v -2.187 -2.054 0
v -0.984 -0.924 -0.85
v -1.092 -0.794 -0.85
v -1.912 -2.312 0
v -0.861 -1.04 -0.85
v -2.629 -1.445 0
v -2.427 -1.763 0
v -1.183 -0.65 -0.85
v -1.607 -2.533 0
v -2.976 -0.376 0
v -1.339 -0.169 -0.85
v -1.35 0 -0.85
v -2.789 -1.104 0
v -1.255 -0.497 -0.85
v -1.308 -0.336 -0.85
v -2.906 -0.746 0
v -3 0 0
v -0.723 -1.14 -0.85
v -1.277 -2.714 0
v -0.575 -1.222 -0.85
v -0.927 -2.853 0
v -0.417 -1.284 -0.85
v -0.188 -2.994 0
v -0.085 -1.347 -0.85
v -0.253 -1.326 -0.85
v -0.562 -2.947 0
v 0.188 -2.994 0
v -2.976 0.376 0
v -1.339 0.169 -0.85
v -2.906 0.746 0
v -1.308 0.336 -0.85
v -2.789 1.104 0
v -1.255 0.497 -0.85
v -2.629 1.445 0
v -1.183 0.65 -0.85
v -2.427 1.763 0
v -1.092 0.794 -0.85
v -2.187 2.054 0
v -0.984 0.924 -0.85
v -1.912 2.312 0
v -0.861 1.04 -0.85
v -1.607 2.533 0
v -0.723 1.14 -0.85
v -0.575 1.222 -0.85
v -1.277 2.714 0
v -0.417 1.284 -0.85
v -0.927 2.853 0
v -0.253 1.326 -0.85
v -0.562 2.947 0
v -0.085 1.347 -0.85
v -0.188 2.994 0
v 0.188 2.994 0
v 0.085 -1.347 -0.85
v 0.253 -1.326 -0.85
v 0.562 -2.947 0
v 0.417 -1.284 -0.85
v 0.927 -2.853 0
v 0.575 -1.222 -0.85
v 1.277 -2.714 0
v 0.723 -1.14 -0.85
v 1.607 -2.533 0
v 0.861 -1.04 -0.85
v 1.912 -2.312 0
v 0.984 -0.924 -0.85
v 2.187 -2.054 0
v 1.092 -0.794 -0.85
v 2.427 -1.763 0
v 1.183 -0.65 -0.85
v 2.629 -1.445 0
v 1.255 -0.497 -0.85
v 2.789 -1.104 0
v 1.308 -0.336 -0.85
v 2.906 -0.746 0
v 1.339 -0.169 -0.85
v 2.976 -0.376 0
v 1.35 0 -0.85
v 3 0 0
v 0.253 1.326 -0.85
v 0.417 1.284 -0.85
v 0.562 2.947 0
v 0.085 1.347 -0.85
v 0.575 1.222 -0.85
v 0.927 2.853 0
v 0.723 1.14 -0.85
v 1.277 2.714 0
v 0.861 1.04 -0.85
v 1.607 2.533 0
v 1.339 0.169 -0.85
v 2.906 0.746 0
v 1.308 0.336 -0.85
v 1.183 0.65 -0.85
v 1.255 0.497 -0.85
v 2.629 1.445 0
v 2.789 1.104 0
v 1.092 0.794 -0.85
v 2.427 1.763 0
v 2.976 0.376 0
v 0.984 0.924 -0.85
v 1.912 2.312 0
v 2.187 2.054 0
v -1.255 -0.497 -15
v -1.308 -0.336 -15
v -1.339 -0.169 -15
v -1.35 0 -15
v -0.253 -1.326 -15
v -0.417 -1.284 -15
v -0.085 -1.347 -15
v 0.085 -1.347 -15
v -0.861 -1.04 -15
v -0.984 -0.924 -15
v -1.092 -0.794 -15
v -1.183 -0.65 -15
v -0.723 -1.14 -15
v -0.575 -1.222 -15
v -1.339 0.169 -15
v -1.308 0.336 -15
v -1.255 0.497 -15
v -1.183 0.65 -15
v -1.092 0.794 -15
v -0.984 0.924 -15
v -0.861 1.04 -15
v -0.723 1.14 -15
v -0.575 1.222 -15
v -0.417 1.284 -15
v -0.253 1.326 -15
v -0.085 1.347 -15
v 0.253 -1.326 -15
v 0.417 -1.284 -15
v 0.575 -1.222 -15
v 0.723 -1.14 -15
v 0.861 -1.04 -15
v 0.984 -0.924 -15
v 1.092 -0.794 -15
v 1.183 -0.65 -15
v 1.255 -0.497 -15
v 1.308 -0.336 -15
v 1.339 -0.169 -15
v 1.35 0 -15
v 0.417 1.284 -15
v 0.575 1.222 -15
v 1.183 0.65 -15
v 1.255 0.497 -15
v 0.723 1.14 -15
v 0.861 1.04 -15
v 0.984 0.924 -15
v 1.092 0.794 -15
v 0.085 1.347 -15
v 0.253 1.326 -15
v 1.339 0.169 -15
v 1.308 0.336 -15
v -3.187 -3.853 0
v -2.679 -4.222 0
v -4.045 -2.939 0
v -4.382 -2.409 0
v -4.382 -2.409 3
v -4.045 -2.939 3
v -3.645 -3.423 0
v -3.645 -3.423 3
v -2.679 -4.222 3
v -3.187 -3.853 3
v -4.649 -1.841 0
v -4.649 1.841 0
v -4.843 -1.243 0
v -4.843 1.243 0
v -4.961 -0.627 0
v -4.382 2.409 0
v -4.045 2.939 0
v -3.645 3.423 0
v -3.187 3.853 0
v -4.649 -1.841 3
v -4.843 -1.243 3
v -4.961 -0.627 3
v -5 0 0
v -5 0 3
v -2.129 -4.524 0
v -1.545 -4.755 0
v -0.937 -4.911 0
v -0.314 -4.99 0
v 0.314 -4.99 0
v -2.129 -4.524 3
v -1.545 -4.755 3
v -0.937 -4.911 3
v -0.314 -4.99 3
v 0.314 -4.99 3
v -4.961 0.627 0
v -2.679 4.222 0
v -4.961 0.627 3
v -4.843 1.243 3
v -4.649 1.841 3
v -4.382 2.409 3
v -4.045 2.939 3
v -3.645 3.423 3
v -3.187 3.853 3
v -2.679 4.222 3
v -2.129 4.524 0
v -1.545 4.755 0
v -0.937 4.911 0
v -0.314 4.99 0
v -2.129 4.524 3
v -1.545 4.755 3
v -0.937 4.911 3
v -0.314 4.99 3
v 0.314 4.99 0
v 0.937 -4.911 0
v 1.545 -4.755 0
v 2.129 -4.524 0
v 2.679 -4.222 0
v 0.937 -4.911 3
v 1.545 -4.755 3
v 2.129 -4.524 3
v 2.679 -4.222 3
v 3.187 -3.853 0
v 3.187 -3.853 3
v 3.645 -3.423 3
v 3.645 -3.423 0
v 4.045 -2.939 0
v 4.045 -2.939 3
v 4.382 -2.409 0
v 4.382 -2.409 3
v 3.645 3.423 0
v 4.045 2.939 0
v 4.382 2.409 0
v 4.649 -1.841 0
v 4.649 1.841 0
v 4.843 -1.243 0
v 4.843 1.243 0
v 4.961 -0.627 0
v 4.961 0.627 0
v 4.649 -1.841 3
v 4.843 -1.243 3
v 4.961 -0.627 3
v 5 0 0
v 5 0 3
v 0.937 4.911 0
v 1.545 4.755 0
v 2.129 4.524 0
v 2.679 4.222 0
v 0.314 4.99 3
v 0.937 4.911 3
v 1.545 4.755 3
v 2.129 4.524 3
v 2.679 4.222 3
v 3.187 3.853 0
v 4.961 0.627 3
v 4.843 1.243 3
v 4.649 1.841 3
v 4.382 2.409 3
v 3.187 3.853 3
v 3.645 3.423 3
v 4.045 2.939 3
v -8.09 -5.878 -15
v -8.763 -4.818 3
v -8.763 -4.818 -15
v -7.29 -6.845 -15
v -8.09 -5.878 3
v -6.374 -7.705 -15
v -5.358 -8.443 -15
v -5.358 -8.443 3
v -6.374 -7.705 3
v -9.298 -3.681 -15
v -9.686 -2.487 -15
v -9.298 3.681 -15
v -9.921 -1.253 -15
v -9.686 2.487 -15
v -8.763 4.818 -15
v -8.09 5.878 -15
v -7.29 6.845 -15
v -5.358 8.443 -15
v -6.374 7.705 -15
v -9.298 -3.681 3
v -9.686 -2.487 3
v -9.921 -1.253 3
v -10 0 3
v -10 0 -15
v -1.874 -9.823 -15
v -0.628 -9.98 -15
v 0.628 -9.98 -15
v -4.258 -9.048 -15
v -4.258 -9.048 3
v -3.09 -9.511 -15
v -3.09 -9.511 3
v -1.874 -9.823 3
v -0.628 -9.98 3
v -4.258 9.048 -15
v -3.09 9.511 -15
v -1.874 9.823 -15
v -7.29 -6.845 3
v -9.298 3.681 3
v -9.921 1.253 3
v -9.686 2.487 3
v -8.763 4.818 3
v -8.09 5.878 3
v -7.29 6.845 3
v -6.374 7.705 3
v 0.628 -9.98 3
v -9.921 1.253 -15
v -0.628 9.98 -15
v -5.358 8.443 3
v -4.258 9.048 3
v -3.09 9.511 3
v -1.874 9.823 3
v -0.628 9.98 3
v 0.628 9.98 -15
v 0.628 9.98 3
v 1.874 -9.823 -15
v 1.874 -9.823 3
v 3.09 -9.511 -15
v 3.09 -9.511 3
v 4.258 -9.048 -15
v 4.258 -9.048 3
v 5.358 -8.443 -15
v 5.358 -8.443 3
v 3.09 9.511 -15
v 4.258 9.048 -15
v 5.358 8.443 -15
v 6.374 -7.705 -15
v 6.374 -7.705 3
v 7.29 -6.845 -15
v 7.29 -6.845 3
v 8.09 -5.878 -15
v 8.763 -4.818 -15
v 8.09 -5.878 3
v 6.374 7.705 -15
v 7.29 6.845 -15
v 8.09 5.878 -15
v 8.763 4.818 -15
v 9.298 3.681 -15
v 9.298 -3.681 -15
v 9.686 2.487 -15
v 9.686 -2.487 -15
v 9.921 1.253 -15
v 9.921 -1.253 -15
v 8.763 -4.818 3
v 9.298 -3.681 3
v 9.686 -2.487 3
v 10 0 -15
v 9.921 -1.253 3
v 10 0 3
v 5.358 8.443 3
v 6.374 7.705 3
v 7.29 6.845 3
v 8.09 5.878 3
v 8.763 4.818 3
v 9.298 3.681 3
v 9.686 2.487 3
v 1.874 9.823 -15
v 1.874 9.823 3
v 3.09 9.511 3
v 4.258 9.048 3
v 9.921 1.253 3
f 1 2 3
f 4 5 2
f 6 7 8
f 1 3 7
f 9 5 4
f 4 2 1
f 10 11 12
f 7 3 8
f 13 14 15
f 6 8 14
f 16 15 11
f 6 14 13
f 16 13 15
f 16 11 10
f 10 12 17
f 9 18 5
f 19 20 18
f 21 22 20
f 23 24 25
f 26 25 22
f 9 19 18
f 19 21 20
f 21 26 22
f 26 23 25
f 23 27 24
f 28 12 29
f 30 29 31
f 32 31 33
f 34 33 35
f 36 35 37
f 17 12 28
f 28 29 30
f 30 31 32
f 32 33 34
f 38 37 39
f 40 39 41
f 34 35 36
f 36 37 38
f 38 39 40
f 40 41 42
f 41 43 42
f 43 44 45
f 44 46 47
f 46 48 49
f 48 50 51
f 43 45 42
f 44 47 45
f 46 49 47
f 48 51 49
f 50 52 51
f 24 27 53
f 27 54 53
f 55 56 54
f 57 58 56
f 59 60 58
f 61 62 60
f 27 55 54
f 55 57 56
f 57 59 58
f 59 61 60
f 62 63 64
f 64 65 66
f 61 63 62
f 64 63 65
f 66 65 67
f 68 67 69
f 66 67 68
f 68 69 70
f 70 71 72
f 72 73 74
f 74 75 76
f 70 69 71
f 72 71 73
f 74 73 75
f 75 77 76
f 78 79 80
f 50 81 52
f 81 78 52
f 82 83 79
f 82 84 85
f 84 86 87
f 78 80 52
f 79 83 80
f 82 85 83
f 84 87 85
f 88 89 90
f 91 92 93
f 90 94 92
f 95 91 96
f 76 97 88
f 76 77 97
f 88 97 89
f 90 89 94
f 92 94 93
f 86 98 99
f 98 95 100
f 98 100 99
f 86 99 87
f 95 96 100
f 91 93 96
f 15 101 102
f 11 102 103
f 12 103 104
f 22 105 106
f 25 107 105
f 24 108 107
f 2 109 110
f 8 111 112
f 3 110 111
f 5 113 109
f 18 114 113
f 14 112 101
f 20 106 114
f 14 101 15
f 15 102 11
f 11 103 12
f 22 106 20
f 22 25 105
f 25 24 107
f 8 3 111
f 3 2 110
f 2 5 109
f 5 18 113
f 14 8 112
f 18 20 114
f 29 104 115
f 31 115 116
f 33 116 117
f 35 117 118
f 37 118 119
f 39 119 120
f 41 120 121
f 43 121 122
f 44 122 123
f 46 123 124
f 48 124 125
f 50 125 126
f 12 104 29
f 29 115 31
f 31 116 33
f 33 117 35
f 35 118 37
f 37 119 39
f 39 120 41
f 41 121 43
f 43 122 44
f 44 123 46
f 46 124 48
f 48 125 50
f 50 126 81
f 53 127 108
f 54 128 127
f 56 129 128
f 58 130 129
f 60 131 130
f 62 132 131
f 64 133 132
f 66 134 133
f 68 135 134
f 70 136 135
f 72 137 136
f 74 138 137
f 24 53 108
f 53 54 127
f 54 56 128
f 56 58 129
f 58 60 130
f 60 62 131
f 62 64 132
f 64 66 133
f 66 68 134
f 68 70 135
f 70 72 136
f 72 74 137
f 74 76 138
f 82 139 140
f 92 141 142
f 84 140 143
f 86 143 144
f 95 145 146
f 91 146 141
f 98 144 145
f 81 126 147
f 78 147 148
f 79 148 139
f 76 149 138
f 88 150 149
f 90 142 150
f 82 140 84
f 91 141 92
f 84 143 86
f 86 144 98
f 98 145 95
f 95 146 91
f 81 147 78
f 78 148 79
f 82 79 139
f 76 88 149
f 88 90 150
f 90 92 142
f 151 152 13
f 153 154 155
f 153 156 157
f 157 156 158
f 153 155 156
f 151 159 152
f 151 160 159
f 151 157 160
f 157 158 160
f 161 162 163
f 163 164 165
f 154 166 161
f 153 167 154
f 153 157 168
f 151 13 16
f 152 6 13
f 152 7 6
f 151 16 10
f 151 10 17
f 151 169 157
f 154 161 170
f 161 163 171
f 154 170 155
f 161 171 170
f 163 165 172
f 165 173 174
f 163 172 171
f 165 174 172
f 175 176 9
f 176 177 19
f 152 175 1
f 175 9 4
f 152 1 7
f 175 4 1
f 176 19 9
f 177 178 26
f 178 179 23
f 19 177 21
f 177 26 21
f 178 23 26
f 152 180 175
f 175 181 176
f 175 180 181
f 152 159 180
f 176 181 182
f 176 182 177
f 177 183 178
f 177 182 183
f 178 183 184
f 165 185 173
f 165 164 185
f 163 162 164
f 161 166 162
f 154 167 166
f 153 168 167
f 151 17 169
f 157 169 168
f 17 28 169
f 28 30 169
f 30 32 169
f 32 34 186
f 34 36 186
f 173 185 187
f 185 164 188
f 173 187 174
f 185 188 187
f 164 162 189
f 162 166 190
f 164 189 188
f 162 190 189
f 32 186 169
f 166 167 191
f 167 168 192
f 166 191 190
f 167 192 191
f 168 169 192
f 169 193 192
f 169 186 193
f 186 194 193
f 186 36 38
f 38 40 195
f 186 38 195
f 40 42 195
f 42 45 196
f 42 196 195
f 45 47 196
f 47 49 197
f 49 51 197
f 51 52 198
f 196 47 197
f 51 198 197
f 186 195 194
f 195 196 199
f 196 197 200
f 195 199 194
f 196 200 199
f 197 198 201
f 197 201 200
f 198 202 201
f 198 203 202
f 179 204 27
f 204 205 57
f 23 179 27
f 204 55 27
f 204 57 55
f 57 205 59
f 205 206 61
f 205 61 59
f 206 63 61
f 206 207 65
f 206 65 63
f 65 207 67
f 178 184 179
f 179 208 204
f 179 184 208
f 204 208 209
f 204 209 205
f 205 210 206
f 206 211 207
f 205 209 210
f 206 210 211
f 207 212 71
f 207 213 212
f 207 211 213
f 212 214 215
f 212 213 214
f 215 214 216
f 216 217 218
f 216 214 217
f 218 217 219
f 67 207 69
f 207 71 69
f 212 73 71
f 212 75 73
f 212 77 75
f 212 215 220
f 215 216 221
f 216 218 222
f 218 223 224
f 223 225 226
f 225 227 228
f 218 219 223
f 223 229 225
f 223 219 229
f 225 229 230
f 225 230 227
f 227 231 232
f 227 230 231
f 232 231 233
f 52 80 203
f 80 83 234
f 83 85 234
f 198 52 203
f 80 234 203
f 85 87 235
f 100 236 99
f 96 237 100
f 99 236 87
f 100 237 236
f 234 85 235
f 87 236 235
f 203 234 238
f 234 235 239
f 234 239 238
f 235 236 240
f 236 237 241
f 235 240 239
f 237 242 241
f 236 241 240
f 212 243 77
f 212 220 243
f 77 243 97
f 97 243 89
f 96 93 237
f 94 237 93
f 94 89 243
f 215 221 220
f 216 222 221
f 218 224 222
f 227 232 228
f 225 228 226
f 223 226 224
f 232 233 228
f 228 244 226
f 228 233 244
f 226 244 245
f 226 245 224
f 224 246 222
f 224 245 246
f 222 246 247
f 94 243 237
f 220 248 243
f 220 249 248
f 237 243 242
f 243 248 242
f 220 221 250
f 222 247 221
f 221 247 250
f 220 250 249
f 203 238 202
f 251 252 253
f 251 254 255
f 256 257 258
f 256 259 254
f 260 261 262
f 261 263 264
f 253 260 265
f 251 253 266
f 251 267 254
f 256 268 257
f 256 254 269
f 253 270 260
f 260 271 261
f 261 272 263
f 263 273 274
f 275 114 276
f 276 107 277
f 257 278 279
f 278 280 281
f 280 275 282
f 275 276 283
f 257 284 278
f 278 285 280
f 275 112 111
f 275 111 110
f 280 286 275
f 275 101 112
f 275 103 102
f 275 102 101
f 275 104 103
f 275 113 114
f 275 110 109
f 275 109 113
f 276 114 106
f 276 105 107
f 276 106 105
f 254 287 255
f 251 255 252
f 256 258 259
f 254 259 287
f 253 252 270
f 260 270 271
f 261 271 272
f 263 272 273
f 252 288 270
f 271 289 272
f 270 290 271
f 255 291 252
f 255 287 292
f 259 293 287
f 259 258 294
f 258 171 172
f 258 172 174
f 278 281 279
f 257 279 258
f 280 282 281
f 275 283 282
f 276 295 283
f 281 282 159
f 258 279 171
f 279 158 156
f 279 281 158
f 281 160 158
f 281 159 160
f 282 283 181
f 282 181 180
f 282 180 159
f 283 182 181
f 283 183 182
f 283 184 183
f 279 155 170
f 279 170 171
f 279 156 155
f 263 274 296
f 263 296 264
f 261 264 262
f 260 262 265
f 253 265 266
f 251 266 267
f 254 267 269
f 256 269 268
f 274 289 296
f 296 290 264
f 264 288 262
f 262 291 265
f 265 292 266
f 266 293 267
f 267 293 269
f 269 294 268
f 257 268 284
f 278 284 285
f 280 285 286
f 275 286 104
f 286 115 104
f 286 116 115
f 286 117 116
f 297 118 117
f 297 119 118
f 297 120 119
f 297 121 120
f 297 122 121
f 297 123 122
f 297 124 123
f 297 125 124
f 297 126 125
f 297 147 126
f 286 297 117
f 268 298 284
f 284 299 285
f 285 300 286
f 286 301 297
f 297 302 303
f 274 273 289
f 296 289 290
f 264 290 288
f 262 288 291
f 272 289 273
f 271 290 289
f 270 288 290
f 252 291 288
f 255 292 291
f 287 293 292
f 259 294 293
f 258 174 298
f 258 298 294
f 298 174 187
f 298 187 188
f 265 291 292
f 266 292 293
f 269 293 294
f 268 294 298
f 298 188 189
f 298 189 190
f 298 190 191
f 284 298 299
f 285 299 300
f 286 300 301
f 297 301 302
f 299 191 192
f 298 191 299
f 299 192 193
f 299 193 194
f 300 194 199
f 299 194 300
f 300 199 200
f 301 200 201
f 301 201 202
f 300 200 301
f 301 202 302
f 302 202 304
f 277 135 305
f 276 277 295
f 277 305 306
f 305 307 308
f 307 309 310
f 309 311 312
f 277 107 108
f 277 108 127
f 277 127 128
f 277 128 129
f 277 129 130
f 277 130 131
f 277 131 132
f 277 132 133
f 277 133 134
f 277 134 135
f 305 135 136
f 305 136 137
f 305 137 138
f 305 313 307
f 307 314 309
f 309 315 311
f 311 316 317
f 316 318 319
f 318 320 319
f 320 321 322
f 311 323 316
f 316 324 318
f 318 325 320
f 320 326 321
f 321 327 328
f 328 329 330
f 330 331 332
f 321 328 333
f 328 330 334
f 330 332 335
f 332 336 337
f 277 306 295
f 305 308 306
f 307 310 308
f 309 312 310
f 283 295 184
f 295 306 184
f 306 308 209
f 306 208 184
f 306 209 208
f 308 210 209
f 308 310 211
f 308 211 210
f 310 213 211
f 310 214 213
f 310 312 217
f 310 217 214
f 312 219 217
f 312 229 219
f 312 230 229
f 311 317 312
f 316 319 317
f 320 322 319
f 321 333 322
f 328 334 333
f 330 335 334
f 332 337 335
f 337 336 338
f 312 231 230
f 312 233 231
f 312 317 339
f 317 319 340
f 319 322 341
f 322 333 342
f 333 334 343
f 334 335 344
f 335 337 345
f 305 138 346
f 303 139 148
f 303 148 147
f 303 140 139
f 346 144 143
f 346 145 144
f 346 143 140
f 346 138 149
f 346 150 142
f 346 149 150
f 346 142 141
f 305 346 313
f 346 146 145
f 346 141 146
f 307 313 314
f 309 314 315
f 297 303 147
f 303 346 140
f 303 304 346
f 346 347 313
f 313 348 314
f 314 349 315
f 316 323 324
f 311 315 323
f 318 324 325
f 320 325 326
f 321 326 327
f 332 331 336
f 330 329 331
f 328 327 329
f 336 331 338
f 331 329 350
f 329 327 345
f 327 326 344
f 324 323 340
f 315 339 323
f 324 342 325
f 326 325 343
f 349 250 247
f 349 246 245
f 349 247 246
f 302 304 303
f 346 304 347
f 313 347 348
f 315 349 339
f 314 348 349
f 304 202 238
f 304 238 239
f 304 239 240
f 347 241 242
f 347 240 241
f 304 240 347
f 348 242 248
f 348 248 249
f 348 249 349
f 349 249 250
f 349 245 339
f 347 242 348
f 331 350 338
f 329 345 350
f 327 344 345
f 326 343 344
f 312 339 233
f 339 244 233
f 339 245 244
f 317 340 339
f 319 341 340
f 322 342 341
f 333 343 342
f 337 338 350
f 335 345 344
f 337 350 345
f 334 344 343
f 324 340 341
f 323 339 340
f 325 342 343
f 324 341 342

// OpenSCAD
$fn = 50;


difference() {
	union() {
		translate(v = [0, 0, -15.0000000000]) {
			cylinder(h = 18, r = 10.0000000000);
		}
	}
	union() {
		translate(v = [0, 0, 0]) {
			rotate(a = [0, 0, 0]) {
				difference() {
					union() {
						translate(v = [0, 0, -18.0000000000]) {
							cylinder(h = 18, r = 1.0000000000);
						}
						translate(v = [0, 0, -0.8500000000]) {
							cylinder(h = 0.8500000000, r1 = 1.3500000000, r2 = 3.0000000000);
						}
						translate(v = [0, 0, -18.0000000000]) {
							cylinder(h = 18, r = 1.3500000000);
						}
						translate(v = [0, 0, -18.0000000000]) {
							cylinder(h = 18, r = 1.0000000000);
						}
					}
					union();
				}
			}
		}
		#cylinder(h = 3, r = 5.0000000000);
	}
}
